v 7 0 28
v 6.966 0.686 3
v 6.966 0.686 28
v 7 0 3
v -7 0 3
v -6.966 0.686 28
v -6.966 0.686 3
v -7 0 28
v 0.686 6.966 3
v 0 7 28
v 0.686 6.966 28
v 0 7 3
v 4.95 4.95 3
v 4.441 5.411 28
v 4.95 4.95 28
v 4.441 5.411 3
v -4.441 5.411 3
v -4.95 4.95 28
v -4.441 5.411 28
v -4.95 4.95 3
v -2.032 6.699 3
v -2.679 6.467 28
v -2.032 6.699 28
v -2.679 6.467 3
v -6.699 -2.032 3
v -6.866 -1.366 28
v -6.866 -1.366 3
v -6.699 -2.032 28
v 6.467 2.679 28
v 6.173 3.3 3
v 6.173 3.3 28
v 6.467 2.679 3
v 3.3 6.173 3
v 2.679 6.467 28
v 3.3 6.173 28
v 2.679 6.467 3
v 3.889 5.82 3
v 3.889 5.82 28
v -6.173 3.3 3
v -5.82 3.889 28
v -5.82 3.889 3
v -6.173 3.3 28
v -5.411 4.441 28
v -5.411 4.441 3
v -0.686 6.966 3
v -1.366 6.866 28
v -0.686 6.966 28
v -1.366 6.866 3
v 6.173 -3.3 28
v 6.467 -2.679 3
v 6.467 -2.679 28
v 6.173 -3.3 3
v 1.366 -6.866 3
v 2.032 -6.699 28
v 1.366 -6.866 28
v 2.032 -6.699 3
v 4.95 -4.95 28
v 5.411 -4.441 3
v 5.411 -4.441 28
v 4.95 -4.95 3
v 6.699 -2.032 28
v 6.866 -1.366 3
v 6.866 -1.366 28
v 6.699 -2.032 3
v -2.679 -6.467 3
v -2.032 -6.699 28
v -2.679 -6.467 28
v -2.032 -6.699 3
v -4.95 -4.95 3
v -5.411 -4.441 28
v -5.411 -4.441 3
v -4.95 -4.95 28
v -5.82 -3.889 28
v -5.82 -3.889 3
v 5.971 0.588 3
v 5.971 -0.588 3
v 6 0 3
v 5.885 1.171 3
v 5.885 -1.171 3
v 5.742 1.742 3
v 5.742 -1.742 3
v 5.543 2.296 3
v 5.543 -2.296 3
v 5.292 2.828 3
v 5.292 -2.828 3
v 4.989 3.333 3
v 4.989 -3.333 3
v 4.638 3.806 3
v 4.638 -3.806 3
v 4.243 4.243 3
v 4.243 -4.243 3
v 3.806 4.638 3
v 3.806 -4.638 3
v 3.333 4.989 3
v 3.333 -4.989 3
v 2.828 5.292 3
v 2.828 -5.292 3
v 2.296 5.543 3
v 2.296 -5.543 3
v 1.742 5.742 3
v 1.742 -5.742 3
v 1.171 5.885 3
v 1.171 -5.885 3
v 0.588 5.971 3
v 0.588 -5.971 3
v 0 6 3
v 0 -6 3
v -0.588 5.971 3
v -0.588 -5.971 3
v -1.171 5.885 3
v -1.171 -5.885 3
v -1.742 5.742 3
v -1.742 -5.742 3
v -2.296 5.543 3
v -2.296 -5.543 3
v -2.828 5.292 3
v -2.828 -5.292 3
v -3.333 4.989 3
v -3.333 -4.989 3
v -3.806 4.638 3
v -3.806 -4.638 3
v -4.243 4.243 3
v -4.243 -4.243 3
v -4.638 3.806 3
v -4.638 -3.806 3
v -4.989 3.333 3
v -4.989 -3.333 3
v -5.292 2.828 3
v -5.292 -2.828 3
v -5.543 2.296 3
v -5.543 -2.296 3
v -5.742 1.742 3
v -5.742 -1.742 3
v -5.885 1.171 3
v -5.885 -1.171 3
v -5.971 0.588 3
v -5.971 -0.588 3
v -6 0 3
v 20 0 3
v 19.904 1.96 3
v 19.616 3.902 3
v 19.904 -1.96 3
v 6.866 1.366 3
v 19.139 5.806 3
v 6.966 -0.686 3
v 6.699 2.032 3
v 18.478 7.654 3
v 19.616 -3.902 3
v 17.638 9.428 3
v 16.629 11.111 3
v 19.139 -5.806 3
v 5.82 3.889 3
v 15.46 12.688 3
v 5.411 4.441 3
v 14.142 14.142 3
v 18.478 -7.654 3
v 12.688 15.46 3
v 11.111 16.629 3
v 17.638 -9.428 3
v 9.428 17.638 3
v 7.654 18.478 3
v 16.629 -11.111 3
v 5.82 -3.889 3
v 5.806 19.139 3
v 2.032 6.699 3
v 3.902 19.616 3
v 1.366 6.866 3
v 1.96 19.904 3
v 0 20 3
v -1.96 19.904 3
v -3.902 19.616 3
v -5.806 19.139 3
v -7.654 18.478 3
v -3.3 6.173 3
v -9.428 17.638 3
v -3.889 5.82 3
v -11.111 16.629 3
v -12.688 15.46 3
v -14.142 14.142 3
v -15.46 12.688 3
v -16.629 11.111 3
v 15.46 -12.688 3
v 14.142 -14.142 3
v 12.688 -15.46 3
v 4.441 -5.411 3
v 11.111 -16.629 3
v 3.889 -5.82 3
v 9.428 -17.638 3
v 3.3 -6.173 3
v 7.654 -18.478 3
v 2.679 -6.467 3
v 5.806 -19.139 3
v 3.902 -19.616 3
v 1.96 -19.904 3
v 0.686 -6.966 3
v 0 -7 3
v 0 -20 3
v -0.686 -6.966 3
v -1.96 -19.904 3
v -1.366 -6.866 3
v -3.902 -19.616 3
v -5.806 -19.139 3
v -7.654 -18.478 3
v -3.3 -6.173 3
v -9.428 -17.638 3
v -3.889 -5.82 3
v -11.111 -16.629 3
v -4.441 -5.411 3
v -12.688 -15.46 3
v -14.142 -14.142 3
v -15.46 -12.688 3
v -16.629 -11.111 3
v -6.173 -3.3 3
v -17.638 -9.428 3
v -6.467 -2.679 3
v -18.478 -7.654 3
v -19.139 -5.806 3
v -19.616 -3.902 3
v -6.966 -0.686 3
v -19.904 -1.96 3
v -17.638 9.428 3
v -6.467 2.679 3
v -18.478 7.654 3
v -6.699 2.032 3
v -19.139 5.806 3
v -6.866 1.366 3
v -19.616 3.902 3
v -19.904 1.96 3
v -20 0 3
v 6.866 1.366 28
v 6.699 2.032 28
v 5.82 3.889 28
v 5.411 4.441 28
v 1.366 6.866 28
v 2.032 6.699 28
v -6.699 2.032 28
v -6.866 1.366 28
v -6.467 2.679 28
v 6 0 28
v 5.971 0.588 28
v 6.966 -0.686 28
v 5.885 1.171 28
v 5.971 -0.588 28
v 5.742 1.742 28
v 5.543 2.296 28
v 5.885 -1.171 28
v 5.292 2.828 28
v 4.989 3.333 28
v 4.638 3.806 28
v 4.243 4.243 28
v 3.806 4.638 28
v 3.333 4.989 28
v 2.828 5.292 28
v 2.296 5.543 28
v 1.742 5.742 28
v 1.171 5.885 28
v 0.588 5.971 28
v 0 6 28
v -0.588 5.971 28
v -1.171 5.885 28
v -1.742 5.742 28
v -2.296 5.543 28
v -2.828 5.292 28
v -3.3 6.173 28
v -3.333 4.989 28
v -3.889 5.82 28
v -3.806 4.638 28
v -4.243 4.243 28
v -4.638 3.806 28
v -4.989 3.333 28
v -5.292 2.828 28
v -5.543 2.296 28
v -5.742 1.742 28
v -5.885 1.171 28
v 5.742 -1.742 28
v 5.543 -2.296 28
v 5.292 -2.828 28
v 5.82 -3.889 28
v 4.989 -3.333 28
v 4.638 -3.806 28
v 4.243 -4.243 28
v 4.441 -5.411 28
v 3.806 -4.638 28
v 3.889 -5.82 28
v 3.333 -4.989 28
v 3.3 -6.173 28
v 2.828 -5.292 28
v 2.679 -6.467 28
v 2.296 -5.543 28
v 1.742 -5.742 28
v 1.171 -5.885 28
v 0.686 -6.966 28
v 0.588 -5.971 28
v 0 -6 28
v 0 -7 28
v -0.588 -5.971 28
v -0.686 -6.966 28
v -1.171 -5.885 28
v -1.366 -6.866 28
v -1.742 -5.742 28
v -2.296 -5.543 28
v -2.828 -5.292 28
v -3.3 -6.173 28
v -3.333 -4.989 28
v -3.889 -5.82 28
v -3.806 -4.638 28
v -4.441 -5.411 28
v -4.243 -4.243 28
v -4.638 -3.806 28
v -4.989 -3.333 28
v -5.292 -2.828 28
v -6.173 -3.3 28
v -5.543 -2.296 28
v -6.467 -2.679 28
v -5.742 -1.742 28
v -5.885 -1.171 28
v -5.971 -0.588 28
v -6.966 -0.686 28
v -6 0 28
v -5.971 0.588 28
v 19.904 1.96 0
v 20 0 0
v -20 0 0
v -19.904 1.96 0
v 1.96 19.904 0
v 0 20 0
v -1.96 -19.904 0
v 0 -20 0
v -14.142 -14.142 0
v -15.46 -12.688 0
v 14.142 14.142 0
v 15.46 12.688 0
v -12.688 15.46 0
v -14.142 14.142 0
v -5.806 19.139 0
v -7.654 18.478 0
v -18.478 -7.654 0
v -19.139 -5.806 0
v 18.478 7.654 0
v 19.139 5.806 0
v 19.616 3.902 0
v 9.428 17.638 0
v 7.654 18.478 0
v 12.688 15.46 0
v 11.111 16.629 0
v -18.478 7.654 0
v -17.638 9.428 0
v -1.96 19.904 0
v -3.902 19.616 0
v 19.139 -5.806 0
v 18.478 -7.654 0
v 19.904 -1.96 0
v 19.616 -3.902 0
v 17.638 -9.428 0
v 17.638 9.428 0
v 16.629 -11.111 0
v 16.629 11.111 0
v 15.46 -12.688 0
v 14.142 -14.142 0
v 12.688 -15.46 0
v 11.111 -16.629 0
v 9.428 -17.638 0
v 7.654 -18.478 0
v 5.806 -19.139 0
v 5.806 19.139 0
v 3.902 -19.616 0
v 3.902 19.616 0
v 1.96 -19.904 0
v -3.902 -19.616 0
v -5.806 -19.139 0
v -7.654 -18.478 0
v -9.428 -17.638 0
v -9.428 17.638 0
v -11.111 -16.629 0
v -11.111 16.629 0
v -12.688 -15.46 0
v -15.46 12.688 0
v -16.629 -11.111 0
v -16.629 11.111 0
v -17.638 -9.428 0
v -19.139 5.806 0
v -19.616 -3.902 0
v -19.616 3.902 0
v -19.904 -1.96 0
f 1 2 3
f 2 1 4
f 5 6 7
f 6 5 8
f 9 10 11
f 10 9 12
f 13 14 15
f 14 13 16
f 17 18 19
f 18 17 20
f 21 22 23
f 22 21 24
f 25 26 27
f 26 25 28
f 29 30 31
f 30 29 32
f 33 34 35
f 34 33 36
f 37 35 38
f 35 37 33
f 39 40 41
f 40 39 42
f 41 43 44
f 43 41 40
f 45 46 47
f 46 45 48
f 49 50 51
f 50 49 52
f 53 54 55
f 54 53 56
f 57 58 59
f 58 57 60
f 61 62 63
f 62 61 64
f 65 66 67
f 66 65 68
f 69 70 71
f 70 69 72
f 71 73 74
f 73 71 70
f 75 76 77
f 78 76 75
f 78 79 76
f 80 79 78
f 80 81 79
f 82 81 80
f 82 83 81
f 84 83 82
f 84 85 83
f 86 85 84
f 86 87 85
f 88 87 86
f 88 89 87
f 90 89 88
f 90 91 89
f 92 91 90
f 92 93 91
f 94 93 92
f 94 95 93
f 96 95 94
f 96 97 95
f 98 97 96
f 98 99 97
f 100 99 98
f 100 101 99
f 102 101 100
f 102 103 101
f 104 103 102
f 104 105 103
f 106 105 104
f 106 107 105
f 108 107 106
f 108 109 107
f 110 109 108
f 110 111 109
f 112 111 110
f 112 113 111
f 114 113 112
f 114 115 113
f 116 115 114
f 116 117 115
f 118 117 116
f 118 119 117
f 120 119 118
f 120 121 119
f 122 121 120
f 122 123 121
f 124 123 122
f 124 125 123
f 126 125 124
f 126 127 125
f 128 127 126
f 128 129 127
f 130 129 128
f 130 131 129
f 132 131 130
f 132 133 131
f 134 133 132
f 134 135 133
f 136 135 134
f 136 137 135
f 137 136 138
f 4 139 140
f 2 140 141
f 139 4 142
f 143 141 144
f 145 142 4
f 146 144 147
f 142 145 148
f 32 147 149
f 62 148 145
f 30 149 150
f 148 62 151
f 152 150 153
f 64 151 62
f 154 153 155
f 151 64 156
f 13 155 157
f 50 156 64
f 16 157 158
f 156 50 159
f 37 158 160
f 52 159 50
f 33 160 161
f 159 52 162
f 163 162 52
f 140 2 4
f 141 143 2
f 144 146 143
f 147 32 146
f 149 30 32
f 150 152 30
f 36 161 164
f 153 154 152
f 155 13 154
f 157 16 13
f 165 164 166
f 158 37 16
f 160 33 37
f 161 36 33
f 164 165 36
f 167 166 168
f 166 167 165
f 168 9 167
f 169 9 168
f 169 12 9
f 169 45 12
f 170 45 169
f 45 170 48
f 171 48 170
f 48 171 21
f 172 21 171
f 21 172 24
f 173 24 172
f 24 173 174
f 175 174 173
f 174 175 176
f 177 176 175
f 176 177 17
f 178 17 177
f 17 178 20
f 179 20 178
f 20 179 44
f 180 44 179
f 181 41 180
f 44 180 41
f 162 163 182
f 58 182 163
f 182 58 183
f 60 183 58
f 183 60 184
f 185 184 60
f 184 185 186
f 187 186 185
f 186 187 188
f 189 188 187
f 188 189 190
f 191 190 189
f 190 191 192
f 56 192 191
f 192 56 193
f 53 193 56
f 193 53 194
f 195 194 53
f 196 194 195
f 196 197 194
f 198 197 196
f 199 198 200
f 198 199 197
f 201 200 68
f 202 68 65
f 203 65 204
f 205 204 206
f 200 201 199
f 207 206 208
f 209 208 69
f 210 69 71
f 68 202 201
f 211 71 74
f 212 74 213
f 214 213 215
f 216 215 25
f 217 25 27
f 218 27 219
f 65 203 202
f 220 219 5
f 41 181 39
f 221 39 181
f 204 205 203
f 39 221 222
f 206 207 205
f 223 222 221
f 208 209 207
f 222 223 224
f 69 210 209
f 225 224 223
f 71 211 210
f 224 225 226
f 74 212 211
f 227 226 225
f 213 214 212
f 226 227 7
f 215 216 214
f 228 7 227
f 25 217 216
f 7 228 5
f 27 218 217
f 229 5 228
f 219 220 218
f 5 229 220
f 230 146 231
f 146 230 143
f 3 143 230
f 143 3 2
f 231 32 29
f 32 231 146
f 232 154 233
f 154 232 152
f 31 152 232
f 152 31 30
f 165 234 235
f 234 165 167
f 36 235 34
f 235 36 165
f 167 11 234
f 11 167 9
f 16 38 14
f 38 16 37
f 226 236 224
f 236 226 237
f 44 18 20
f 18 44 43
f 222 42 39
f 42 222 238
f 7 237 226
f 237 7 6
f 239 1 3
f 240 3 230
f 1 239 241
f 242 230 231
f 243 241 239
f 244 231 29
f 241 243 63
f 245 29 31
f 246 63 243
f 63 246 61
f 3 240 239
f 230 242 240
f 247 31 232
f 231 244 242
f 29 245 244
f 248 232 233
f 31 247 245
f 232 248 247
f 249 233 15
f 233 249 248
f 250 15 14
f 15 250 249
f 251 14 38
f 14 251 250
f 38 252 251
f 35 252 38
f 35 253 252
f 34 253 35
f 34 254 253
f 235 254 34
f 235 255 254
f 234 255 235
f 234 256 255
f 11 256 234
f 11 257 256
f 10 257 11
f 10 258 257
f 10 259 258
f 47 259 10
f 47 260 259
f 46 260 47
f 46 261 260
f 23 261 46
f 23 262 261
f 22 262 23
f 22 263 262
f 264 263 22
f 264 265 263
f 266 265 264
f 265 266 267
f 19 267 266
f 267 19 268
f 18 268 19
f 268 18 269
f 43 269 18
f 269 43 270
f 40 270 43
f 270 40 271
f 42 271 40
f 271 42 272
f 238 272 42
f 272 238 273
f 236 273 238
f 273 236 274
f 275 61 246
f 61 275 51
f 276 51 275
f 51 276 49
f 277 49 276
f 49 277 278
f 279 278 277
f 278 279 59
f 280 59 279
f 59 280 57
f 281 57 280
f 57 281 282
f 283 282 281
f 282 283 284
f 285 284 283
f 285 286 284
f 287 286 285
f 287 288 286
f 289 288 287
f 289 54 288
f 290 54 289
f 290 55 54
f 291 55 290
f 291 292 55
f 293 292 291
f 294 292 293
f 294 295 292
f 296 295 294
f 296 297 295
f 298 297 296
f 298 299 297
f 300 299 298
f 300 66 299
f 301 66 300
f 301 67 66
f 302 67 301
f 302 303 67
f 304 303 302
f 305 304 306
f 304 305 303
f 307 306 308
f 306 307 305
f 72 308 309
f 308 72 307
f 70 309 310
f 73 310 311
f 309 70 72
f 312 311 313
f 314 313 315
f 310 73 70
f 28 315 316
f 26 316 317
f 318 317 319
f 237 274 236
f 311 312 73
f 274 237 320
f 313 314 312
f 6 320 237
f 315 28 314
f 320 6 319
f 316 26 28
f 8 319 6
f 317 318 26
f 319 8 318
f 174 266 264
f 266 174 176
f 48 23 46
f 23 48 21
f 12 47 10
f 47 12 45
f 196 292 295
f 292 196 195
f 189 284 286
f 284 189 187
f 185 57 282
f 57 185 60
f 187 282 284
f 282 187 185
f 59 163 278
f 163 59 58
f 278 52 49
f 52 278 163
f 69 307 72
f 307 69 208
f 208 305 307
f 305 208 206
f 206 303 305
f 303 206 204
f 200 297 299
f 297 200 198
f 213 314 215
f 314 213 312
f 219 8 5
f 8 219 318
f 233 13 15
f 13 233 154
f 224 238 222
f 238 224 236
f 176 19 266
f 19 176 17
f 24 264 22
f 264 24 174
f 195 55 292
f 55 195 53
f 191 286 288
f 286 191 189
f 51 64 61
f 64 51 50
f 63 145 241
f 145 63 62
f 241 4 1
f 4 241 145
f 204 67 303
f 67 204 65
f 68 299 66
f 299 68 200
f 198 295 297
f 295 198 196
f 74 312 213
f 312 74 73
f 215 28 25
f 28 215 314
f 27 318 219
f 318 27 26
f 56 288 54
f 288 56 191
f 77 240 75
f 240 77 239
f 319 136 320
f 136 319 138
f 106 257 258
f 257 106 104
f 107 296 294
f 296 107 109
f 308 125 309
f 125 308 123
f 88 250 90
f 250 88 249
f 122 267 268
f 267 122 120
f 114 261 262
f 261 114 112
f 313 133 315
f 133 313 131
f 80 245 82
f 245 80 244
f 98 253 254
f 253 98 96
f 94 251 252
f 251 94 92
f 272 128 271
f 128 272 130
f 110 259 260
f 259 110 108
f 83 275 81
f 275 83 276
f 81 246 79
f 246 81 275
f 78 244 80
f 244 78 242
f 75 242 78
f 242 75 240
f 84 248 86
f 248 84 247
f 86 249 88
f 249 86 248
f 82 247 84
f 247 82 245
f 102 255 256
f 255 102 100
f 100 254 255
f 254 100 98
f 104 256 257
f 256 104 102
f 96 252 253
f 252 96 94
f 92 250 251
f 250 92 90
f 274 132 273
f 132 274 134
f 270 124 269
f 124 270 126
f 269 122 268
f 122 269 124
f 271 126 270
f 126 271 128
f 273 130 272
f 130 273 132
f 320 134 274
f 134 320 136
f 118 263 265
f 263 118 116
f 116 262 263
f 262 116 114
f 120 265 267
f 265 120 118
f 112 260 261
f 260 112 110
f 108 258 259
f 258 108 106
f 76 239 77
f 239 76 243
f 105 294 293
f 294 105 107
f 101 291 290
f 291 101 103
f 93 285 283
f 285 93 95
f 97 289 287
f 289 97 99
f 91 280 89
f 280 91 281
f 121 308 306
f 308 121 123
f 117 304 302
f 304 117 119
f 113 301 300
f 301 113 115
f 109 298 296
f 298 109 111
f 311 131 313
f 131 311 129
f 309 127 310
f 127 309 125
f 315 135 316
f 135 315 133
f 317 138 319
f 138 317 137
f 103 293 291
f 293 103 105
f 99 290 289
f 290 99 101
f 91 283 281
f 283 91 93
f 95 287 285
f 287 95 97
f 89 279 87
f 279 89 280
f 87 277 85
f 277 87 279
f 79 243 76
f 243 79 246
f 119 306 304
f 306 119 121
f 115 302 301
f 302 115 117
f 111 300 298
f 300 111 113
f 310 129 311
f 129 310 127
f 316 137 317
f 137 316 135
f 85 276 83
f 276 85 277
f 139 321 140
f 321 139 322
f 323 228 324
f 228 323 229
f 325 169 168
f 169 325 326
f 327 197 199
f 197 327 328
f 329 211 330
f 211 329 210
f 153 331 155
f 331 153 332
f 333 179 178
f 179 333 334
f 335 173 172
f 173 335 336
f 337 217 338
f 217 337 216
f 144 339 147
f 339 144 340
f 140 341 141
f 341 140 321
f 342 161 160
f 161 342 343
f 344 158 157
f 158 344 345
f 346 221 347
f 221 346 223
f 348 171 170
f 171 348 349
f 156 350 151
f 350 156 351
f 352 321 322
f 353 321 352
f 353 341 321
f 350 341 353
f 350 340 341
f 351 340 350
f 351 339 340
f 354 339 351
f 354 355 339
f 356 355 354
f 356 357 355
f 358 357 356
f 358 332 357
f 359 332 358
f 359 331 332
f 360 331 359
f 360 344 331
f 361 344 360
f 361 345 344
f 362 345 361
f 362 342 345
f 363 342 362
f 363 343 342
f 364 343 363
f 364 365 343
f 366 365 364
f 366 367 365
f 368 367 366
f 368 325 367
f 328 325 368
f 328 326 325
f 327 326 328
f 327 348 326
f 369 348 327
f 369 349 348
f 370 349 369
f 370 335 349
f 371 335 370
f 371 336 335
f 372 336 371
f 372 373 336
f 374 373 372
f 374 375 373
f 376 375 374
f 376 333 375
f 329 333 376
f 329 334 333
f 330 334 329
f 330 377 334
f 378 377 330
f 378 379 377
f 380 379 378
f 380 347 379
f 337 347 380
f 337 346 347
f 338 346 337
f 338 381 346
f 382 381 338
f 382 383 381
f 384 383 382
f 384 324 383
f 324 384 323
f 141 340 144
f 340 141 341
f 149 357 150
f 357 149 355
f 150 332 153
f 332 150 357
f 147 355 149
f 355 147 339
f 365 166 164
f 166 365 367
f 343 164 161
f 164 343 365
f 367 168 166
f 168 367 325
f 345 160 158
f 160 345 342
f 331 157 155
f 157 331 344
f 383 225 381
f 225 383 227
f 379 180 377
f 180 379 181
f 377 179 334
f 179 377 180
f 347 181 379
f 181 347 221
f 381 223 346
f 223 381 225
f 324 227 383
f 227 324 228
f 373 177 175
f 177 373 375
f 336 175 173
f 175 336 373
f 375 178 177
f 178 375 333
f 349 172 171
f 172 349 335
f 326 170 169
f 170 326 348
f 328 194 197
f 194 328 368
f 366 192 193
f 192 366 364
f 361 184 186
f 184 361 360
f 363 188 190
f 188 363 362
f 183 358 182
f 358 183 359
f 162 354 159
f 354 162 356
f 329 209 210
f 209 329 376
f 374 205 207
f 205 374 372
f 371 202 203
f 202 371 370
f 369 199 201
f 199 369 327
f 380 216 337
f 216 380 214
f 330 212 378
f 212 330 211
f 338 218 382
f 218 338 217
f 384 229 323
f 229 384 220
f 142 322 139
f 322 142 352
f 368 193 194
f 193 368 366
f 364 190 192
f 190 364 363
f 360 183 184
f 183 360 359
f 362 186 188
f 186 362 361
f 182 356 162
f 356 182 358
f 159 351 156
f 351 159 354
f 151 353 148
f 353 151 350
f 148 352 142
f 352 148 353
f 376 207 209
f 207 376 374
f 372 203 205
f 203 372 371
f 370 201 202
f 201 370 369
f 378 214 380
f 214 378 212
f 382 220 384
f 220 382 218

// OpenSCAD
CD_RADIUS = 60;
CD_CENTRE_HOLD_RADIUS = 7.5;

module CompactDiscStand(baseThickness = 3,
                        baseRadius = CD_RADIUS + 10,
                        uprightHeight = 120,
                        uprightRadius = CD_CENTRE_HOLD_RADIUS - 0.5,
                        uprightThickness = 1,
                        includeBanding = false,
                        fn = 64)
{
    // Base
    cylinder(h = baseThickness, r = baseRadius, $fn = fn);

    // Upright
    difference()
    {
        union()
        {
            translate([0, 0, baseThickness])
            cylinder(h = uprightHeight, r = uprightRadius, $fn = fn);

            if (includeBanding)
            {
                for (y = [baseThickness : uprightHeight / baseThickness])
                {
                    translate([0, 0, y * baseThickness])
                    cylinder(h = uprightThickness , r = uprightRadius + uprightThickness, $fn = fn);
                }
            }
        }

        translate([0, 0, baseThickness])
        cylinder(h = uprightHeight + 1, r = uprightRadius-uprightThickness, $fn = fn);
    }


}

//CompactDiscStand();

//CompactDiscStand(includeBanding = true);

/*
 * Test prints
 */

CompactDiscStand(baseRadius = 20, uprightHeight = 25);

//translate([50, 0, 0])
//CompactDiscStand(baseRadius = 20, uprightHeight = 25, includeBanding = true);
